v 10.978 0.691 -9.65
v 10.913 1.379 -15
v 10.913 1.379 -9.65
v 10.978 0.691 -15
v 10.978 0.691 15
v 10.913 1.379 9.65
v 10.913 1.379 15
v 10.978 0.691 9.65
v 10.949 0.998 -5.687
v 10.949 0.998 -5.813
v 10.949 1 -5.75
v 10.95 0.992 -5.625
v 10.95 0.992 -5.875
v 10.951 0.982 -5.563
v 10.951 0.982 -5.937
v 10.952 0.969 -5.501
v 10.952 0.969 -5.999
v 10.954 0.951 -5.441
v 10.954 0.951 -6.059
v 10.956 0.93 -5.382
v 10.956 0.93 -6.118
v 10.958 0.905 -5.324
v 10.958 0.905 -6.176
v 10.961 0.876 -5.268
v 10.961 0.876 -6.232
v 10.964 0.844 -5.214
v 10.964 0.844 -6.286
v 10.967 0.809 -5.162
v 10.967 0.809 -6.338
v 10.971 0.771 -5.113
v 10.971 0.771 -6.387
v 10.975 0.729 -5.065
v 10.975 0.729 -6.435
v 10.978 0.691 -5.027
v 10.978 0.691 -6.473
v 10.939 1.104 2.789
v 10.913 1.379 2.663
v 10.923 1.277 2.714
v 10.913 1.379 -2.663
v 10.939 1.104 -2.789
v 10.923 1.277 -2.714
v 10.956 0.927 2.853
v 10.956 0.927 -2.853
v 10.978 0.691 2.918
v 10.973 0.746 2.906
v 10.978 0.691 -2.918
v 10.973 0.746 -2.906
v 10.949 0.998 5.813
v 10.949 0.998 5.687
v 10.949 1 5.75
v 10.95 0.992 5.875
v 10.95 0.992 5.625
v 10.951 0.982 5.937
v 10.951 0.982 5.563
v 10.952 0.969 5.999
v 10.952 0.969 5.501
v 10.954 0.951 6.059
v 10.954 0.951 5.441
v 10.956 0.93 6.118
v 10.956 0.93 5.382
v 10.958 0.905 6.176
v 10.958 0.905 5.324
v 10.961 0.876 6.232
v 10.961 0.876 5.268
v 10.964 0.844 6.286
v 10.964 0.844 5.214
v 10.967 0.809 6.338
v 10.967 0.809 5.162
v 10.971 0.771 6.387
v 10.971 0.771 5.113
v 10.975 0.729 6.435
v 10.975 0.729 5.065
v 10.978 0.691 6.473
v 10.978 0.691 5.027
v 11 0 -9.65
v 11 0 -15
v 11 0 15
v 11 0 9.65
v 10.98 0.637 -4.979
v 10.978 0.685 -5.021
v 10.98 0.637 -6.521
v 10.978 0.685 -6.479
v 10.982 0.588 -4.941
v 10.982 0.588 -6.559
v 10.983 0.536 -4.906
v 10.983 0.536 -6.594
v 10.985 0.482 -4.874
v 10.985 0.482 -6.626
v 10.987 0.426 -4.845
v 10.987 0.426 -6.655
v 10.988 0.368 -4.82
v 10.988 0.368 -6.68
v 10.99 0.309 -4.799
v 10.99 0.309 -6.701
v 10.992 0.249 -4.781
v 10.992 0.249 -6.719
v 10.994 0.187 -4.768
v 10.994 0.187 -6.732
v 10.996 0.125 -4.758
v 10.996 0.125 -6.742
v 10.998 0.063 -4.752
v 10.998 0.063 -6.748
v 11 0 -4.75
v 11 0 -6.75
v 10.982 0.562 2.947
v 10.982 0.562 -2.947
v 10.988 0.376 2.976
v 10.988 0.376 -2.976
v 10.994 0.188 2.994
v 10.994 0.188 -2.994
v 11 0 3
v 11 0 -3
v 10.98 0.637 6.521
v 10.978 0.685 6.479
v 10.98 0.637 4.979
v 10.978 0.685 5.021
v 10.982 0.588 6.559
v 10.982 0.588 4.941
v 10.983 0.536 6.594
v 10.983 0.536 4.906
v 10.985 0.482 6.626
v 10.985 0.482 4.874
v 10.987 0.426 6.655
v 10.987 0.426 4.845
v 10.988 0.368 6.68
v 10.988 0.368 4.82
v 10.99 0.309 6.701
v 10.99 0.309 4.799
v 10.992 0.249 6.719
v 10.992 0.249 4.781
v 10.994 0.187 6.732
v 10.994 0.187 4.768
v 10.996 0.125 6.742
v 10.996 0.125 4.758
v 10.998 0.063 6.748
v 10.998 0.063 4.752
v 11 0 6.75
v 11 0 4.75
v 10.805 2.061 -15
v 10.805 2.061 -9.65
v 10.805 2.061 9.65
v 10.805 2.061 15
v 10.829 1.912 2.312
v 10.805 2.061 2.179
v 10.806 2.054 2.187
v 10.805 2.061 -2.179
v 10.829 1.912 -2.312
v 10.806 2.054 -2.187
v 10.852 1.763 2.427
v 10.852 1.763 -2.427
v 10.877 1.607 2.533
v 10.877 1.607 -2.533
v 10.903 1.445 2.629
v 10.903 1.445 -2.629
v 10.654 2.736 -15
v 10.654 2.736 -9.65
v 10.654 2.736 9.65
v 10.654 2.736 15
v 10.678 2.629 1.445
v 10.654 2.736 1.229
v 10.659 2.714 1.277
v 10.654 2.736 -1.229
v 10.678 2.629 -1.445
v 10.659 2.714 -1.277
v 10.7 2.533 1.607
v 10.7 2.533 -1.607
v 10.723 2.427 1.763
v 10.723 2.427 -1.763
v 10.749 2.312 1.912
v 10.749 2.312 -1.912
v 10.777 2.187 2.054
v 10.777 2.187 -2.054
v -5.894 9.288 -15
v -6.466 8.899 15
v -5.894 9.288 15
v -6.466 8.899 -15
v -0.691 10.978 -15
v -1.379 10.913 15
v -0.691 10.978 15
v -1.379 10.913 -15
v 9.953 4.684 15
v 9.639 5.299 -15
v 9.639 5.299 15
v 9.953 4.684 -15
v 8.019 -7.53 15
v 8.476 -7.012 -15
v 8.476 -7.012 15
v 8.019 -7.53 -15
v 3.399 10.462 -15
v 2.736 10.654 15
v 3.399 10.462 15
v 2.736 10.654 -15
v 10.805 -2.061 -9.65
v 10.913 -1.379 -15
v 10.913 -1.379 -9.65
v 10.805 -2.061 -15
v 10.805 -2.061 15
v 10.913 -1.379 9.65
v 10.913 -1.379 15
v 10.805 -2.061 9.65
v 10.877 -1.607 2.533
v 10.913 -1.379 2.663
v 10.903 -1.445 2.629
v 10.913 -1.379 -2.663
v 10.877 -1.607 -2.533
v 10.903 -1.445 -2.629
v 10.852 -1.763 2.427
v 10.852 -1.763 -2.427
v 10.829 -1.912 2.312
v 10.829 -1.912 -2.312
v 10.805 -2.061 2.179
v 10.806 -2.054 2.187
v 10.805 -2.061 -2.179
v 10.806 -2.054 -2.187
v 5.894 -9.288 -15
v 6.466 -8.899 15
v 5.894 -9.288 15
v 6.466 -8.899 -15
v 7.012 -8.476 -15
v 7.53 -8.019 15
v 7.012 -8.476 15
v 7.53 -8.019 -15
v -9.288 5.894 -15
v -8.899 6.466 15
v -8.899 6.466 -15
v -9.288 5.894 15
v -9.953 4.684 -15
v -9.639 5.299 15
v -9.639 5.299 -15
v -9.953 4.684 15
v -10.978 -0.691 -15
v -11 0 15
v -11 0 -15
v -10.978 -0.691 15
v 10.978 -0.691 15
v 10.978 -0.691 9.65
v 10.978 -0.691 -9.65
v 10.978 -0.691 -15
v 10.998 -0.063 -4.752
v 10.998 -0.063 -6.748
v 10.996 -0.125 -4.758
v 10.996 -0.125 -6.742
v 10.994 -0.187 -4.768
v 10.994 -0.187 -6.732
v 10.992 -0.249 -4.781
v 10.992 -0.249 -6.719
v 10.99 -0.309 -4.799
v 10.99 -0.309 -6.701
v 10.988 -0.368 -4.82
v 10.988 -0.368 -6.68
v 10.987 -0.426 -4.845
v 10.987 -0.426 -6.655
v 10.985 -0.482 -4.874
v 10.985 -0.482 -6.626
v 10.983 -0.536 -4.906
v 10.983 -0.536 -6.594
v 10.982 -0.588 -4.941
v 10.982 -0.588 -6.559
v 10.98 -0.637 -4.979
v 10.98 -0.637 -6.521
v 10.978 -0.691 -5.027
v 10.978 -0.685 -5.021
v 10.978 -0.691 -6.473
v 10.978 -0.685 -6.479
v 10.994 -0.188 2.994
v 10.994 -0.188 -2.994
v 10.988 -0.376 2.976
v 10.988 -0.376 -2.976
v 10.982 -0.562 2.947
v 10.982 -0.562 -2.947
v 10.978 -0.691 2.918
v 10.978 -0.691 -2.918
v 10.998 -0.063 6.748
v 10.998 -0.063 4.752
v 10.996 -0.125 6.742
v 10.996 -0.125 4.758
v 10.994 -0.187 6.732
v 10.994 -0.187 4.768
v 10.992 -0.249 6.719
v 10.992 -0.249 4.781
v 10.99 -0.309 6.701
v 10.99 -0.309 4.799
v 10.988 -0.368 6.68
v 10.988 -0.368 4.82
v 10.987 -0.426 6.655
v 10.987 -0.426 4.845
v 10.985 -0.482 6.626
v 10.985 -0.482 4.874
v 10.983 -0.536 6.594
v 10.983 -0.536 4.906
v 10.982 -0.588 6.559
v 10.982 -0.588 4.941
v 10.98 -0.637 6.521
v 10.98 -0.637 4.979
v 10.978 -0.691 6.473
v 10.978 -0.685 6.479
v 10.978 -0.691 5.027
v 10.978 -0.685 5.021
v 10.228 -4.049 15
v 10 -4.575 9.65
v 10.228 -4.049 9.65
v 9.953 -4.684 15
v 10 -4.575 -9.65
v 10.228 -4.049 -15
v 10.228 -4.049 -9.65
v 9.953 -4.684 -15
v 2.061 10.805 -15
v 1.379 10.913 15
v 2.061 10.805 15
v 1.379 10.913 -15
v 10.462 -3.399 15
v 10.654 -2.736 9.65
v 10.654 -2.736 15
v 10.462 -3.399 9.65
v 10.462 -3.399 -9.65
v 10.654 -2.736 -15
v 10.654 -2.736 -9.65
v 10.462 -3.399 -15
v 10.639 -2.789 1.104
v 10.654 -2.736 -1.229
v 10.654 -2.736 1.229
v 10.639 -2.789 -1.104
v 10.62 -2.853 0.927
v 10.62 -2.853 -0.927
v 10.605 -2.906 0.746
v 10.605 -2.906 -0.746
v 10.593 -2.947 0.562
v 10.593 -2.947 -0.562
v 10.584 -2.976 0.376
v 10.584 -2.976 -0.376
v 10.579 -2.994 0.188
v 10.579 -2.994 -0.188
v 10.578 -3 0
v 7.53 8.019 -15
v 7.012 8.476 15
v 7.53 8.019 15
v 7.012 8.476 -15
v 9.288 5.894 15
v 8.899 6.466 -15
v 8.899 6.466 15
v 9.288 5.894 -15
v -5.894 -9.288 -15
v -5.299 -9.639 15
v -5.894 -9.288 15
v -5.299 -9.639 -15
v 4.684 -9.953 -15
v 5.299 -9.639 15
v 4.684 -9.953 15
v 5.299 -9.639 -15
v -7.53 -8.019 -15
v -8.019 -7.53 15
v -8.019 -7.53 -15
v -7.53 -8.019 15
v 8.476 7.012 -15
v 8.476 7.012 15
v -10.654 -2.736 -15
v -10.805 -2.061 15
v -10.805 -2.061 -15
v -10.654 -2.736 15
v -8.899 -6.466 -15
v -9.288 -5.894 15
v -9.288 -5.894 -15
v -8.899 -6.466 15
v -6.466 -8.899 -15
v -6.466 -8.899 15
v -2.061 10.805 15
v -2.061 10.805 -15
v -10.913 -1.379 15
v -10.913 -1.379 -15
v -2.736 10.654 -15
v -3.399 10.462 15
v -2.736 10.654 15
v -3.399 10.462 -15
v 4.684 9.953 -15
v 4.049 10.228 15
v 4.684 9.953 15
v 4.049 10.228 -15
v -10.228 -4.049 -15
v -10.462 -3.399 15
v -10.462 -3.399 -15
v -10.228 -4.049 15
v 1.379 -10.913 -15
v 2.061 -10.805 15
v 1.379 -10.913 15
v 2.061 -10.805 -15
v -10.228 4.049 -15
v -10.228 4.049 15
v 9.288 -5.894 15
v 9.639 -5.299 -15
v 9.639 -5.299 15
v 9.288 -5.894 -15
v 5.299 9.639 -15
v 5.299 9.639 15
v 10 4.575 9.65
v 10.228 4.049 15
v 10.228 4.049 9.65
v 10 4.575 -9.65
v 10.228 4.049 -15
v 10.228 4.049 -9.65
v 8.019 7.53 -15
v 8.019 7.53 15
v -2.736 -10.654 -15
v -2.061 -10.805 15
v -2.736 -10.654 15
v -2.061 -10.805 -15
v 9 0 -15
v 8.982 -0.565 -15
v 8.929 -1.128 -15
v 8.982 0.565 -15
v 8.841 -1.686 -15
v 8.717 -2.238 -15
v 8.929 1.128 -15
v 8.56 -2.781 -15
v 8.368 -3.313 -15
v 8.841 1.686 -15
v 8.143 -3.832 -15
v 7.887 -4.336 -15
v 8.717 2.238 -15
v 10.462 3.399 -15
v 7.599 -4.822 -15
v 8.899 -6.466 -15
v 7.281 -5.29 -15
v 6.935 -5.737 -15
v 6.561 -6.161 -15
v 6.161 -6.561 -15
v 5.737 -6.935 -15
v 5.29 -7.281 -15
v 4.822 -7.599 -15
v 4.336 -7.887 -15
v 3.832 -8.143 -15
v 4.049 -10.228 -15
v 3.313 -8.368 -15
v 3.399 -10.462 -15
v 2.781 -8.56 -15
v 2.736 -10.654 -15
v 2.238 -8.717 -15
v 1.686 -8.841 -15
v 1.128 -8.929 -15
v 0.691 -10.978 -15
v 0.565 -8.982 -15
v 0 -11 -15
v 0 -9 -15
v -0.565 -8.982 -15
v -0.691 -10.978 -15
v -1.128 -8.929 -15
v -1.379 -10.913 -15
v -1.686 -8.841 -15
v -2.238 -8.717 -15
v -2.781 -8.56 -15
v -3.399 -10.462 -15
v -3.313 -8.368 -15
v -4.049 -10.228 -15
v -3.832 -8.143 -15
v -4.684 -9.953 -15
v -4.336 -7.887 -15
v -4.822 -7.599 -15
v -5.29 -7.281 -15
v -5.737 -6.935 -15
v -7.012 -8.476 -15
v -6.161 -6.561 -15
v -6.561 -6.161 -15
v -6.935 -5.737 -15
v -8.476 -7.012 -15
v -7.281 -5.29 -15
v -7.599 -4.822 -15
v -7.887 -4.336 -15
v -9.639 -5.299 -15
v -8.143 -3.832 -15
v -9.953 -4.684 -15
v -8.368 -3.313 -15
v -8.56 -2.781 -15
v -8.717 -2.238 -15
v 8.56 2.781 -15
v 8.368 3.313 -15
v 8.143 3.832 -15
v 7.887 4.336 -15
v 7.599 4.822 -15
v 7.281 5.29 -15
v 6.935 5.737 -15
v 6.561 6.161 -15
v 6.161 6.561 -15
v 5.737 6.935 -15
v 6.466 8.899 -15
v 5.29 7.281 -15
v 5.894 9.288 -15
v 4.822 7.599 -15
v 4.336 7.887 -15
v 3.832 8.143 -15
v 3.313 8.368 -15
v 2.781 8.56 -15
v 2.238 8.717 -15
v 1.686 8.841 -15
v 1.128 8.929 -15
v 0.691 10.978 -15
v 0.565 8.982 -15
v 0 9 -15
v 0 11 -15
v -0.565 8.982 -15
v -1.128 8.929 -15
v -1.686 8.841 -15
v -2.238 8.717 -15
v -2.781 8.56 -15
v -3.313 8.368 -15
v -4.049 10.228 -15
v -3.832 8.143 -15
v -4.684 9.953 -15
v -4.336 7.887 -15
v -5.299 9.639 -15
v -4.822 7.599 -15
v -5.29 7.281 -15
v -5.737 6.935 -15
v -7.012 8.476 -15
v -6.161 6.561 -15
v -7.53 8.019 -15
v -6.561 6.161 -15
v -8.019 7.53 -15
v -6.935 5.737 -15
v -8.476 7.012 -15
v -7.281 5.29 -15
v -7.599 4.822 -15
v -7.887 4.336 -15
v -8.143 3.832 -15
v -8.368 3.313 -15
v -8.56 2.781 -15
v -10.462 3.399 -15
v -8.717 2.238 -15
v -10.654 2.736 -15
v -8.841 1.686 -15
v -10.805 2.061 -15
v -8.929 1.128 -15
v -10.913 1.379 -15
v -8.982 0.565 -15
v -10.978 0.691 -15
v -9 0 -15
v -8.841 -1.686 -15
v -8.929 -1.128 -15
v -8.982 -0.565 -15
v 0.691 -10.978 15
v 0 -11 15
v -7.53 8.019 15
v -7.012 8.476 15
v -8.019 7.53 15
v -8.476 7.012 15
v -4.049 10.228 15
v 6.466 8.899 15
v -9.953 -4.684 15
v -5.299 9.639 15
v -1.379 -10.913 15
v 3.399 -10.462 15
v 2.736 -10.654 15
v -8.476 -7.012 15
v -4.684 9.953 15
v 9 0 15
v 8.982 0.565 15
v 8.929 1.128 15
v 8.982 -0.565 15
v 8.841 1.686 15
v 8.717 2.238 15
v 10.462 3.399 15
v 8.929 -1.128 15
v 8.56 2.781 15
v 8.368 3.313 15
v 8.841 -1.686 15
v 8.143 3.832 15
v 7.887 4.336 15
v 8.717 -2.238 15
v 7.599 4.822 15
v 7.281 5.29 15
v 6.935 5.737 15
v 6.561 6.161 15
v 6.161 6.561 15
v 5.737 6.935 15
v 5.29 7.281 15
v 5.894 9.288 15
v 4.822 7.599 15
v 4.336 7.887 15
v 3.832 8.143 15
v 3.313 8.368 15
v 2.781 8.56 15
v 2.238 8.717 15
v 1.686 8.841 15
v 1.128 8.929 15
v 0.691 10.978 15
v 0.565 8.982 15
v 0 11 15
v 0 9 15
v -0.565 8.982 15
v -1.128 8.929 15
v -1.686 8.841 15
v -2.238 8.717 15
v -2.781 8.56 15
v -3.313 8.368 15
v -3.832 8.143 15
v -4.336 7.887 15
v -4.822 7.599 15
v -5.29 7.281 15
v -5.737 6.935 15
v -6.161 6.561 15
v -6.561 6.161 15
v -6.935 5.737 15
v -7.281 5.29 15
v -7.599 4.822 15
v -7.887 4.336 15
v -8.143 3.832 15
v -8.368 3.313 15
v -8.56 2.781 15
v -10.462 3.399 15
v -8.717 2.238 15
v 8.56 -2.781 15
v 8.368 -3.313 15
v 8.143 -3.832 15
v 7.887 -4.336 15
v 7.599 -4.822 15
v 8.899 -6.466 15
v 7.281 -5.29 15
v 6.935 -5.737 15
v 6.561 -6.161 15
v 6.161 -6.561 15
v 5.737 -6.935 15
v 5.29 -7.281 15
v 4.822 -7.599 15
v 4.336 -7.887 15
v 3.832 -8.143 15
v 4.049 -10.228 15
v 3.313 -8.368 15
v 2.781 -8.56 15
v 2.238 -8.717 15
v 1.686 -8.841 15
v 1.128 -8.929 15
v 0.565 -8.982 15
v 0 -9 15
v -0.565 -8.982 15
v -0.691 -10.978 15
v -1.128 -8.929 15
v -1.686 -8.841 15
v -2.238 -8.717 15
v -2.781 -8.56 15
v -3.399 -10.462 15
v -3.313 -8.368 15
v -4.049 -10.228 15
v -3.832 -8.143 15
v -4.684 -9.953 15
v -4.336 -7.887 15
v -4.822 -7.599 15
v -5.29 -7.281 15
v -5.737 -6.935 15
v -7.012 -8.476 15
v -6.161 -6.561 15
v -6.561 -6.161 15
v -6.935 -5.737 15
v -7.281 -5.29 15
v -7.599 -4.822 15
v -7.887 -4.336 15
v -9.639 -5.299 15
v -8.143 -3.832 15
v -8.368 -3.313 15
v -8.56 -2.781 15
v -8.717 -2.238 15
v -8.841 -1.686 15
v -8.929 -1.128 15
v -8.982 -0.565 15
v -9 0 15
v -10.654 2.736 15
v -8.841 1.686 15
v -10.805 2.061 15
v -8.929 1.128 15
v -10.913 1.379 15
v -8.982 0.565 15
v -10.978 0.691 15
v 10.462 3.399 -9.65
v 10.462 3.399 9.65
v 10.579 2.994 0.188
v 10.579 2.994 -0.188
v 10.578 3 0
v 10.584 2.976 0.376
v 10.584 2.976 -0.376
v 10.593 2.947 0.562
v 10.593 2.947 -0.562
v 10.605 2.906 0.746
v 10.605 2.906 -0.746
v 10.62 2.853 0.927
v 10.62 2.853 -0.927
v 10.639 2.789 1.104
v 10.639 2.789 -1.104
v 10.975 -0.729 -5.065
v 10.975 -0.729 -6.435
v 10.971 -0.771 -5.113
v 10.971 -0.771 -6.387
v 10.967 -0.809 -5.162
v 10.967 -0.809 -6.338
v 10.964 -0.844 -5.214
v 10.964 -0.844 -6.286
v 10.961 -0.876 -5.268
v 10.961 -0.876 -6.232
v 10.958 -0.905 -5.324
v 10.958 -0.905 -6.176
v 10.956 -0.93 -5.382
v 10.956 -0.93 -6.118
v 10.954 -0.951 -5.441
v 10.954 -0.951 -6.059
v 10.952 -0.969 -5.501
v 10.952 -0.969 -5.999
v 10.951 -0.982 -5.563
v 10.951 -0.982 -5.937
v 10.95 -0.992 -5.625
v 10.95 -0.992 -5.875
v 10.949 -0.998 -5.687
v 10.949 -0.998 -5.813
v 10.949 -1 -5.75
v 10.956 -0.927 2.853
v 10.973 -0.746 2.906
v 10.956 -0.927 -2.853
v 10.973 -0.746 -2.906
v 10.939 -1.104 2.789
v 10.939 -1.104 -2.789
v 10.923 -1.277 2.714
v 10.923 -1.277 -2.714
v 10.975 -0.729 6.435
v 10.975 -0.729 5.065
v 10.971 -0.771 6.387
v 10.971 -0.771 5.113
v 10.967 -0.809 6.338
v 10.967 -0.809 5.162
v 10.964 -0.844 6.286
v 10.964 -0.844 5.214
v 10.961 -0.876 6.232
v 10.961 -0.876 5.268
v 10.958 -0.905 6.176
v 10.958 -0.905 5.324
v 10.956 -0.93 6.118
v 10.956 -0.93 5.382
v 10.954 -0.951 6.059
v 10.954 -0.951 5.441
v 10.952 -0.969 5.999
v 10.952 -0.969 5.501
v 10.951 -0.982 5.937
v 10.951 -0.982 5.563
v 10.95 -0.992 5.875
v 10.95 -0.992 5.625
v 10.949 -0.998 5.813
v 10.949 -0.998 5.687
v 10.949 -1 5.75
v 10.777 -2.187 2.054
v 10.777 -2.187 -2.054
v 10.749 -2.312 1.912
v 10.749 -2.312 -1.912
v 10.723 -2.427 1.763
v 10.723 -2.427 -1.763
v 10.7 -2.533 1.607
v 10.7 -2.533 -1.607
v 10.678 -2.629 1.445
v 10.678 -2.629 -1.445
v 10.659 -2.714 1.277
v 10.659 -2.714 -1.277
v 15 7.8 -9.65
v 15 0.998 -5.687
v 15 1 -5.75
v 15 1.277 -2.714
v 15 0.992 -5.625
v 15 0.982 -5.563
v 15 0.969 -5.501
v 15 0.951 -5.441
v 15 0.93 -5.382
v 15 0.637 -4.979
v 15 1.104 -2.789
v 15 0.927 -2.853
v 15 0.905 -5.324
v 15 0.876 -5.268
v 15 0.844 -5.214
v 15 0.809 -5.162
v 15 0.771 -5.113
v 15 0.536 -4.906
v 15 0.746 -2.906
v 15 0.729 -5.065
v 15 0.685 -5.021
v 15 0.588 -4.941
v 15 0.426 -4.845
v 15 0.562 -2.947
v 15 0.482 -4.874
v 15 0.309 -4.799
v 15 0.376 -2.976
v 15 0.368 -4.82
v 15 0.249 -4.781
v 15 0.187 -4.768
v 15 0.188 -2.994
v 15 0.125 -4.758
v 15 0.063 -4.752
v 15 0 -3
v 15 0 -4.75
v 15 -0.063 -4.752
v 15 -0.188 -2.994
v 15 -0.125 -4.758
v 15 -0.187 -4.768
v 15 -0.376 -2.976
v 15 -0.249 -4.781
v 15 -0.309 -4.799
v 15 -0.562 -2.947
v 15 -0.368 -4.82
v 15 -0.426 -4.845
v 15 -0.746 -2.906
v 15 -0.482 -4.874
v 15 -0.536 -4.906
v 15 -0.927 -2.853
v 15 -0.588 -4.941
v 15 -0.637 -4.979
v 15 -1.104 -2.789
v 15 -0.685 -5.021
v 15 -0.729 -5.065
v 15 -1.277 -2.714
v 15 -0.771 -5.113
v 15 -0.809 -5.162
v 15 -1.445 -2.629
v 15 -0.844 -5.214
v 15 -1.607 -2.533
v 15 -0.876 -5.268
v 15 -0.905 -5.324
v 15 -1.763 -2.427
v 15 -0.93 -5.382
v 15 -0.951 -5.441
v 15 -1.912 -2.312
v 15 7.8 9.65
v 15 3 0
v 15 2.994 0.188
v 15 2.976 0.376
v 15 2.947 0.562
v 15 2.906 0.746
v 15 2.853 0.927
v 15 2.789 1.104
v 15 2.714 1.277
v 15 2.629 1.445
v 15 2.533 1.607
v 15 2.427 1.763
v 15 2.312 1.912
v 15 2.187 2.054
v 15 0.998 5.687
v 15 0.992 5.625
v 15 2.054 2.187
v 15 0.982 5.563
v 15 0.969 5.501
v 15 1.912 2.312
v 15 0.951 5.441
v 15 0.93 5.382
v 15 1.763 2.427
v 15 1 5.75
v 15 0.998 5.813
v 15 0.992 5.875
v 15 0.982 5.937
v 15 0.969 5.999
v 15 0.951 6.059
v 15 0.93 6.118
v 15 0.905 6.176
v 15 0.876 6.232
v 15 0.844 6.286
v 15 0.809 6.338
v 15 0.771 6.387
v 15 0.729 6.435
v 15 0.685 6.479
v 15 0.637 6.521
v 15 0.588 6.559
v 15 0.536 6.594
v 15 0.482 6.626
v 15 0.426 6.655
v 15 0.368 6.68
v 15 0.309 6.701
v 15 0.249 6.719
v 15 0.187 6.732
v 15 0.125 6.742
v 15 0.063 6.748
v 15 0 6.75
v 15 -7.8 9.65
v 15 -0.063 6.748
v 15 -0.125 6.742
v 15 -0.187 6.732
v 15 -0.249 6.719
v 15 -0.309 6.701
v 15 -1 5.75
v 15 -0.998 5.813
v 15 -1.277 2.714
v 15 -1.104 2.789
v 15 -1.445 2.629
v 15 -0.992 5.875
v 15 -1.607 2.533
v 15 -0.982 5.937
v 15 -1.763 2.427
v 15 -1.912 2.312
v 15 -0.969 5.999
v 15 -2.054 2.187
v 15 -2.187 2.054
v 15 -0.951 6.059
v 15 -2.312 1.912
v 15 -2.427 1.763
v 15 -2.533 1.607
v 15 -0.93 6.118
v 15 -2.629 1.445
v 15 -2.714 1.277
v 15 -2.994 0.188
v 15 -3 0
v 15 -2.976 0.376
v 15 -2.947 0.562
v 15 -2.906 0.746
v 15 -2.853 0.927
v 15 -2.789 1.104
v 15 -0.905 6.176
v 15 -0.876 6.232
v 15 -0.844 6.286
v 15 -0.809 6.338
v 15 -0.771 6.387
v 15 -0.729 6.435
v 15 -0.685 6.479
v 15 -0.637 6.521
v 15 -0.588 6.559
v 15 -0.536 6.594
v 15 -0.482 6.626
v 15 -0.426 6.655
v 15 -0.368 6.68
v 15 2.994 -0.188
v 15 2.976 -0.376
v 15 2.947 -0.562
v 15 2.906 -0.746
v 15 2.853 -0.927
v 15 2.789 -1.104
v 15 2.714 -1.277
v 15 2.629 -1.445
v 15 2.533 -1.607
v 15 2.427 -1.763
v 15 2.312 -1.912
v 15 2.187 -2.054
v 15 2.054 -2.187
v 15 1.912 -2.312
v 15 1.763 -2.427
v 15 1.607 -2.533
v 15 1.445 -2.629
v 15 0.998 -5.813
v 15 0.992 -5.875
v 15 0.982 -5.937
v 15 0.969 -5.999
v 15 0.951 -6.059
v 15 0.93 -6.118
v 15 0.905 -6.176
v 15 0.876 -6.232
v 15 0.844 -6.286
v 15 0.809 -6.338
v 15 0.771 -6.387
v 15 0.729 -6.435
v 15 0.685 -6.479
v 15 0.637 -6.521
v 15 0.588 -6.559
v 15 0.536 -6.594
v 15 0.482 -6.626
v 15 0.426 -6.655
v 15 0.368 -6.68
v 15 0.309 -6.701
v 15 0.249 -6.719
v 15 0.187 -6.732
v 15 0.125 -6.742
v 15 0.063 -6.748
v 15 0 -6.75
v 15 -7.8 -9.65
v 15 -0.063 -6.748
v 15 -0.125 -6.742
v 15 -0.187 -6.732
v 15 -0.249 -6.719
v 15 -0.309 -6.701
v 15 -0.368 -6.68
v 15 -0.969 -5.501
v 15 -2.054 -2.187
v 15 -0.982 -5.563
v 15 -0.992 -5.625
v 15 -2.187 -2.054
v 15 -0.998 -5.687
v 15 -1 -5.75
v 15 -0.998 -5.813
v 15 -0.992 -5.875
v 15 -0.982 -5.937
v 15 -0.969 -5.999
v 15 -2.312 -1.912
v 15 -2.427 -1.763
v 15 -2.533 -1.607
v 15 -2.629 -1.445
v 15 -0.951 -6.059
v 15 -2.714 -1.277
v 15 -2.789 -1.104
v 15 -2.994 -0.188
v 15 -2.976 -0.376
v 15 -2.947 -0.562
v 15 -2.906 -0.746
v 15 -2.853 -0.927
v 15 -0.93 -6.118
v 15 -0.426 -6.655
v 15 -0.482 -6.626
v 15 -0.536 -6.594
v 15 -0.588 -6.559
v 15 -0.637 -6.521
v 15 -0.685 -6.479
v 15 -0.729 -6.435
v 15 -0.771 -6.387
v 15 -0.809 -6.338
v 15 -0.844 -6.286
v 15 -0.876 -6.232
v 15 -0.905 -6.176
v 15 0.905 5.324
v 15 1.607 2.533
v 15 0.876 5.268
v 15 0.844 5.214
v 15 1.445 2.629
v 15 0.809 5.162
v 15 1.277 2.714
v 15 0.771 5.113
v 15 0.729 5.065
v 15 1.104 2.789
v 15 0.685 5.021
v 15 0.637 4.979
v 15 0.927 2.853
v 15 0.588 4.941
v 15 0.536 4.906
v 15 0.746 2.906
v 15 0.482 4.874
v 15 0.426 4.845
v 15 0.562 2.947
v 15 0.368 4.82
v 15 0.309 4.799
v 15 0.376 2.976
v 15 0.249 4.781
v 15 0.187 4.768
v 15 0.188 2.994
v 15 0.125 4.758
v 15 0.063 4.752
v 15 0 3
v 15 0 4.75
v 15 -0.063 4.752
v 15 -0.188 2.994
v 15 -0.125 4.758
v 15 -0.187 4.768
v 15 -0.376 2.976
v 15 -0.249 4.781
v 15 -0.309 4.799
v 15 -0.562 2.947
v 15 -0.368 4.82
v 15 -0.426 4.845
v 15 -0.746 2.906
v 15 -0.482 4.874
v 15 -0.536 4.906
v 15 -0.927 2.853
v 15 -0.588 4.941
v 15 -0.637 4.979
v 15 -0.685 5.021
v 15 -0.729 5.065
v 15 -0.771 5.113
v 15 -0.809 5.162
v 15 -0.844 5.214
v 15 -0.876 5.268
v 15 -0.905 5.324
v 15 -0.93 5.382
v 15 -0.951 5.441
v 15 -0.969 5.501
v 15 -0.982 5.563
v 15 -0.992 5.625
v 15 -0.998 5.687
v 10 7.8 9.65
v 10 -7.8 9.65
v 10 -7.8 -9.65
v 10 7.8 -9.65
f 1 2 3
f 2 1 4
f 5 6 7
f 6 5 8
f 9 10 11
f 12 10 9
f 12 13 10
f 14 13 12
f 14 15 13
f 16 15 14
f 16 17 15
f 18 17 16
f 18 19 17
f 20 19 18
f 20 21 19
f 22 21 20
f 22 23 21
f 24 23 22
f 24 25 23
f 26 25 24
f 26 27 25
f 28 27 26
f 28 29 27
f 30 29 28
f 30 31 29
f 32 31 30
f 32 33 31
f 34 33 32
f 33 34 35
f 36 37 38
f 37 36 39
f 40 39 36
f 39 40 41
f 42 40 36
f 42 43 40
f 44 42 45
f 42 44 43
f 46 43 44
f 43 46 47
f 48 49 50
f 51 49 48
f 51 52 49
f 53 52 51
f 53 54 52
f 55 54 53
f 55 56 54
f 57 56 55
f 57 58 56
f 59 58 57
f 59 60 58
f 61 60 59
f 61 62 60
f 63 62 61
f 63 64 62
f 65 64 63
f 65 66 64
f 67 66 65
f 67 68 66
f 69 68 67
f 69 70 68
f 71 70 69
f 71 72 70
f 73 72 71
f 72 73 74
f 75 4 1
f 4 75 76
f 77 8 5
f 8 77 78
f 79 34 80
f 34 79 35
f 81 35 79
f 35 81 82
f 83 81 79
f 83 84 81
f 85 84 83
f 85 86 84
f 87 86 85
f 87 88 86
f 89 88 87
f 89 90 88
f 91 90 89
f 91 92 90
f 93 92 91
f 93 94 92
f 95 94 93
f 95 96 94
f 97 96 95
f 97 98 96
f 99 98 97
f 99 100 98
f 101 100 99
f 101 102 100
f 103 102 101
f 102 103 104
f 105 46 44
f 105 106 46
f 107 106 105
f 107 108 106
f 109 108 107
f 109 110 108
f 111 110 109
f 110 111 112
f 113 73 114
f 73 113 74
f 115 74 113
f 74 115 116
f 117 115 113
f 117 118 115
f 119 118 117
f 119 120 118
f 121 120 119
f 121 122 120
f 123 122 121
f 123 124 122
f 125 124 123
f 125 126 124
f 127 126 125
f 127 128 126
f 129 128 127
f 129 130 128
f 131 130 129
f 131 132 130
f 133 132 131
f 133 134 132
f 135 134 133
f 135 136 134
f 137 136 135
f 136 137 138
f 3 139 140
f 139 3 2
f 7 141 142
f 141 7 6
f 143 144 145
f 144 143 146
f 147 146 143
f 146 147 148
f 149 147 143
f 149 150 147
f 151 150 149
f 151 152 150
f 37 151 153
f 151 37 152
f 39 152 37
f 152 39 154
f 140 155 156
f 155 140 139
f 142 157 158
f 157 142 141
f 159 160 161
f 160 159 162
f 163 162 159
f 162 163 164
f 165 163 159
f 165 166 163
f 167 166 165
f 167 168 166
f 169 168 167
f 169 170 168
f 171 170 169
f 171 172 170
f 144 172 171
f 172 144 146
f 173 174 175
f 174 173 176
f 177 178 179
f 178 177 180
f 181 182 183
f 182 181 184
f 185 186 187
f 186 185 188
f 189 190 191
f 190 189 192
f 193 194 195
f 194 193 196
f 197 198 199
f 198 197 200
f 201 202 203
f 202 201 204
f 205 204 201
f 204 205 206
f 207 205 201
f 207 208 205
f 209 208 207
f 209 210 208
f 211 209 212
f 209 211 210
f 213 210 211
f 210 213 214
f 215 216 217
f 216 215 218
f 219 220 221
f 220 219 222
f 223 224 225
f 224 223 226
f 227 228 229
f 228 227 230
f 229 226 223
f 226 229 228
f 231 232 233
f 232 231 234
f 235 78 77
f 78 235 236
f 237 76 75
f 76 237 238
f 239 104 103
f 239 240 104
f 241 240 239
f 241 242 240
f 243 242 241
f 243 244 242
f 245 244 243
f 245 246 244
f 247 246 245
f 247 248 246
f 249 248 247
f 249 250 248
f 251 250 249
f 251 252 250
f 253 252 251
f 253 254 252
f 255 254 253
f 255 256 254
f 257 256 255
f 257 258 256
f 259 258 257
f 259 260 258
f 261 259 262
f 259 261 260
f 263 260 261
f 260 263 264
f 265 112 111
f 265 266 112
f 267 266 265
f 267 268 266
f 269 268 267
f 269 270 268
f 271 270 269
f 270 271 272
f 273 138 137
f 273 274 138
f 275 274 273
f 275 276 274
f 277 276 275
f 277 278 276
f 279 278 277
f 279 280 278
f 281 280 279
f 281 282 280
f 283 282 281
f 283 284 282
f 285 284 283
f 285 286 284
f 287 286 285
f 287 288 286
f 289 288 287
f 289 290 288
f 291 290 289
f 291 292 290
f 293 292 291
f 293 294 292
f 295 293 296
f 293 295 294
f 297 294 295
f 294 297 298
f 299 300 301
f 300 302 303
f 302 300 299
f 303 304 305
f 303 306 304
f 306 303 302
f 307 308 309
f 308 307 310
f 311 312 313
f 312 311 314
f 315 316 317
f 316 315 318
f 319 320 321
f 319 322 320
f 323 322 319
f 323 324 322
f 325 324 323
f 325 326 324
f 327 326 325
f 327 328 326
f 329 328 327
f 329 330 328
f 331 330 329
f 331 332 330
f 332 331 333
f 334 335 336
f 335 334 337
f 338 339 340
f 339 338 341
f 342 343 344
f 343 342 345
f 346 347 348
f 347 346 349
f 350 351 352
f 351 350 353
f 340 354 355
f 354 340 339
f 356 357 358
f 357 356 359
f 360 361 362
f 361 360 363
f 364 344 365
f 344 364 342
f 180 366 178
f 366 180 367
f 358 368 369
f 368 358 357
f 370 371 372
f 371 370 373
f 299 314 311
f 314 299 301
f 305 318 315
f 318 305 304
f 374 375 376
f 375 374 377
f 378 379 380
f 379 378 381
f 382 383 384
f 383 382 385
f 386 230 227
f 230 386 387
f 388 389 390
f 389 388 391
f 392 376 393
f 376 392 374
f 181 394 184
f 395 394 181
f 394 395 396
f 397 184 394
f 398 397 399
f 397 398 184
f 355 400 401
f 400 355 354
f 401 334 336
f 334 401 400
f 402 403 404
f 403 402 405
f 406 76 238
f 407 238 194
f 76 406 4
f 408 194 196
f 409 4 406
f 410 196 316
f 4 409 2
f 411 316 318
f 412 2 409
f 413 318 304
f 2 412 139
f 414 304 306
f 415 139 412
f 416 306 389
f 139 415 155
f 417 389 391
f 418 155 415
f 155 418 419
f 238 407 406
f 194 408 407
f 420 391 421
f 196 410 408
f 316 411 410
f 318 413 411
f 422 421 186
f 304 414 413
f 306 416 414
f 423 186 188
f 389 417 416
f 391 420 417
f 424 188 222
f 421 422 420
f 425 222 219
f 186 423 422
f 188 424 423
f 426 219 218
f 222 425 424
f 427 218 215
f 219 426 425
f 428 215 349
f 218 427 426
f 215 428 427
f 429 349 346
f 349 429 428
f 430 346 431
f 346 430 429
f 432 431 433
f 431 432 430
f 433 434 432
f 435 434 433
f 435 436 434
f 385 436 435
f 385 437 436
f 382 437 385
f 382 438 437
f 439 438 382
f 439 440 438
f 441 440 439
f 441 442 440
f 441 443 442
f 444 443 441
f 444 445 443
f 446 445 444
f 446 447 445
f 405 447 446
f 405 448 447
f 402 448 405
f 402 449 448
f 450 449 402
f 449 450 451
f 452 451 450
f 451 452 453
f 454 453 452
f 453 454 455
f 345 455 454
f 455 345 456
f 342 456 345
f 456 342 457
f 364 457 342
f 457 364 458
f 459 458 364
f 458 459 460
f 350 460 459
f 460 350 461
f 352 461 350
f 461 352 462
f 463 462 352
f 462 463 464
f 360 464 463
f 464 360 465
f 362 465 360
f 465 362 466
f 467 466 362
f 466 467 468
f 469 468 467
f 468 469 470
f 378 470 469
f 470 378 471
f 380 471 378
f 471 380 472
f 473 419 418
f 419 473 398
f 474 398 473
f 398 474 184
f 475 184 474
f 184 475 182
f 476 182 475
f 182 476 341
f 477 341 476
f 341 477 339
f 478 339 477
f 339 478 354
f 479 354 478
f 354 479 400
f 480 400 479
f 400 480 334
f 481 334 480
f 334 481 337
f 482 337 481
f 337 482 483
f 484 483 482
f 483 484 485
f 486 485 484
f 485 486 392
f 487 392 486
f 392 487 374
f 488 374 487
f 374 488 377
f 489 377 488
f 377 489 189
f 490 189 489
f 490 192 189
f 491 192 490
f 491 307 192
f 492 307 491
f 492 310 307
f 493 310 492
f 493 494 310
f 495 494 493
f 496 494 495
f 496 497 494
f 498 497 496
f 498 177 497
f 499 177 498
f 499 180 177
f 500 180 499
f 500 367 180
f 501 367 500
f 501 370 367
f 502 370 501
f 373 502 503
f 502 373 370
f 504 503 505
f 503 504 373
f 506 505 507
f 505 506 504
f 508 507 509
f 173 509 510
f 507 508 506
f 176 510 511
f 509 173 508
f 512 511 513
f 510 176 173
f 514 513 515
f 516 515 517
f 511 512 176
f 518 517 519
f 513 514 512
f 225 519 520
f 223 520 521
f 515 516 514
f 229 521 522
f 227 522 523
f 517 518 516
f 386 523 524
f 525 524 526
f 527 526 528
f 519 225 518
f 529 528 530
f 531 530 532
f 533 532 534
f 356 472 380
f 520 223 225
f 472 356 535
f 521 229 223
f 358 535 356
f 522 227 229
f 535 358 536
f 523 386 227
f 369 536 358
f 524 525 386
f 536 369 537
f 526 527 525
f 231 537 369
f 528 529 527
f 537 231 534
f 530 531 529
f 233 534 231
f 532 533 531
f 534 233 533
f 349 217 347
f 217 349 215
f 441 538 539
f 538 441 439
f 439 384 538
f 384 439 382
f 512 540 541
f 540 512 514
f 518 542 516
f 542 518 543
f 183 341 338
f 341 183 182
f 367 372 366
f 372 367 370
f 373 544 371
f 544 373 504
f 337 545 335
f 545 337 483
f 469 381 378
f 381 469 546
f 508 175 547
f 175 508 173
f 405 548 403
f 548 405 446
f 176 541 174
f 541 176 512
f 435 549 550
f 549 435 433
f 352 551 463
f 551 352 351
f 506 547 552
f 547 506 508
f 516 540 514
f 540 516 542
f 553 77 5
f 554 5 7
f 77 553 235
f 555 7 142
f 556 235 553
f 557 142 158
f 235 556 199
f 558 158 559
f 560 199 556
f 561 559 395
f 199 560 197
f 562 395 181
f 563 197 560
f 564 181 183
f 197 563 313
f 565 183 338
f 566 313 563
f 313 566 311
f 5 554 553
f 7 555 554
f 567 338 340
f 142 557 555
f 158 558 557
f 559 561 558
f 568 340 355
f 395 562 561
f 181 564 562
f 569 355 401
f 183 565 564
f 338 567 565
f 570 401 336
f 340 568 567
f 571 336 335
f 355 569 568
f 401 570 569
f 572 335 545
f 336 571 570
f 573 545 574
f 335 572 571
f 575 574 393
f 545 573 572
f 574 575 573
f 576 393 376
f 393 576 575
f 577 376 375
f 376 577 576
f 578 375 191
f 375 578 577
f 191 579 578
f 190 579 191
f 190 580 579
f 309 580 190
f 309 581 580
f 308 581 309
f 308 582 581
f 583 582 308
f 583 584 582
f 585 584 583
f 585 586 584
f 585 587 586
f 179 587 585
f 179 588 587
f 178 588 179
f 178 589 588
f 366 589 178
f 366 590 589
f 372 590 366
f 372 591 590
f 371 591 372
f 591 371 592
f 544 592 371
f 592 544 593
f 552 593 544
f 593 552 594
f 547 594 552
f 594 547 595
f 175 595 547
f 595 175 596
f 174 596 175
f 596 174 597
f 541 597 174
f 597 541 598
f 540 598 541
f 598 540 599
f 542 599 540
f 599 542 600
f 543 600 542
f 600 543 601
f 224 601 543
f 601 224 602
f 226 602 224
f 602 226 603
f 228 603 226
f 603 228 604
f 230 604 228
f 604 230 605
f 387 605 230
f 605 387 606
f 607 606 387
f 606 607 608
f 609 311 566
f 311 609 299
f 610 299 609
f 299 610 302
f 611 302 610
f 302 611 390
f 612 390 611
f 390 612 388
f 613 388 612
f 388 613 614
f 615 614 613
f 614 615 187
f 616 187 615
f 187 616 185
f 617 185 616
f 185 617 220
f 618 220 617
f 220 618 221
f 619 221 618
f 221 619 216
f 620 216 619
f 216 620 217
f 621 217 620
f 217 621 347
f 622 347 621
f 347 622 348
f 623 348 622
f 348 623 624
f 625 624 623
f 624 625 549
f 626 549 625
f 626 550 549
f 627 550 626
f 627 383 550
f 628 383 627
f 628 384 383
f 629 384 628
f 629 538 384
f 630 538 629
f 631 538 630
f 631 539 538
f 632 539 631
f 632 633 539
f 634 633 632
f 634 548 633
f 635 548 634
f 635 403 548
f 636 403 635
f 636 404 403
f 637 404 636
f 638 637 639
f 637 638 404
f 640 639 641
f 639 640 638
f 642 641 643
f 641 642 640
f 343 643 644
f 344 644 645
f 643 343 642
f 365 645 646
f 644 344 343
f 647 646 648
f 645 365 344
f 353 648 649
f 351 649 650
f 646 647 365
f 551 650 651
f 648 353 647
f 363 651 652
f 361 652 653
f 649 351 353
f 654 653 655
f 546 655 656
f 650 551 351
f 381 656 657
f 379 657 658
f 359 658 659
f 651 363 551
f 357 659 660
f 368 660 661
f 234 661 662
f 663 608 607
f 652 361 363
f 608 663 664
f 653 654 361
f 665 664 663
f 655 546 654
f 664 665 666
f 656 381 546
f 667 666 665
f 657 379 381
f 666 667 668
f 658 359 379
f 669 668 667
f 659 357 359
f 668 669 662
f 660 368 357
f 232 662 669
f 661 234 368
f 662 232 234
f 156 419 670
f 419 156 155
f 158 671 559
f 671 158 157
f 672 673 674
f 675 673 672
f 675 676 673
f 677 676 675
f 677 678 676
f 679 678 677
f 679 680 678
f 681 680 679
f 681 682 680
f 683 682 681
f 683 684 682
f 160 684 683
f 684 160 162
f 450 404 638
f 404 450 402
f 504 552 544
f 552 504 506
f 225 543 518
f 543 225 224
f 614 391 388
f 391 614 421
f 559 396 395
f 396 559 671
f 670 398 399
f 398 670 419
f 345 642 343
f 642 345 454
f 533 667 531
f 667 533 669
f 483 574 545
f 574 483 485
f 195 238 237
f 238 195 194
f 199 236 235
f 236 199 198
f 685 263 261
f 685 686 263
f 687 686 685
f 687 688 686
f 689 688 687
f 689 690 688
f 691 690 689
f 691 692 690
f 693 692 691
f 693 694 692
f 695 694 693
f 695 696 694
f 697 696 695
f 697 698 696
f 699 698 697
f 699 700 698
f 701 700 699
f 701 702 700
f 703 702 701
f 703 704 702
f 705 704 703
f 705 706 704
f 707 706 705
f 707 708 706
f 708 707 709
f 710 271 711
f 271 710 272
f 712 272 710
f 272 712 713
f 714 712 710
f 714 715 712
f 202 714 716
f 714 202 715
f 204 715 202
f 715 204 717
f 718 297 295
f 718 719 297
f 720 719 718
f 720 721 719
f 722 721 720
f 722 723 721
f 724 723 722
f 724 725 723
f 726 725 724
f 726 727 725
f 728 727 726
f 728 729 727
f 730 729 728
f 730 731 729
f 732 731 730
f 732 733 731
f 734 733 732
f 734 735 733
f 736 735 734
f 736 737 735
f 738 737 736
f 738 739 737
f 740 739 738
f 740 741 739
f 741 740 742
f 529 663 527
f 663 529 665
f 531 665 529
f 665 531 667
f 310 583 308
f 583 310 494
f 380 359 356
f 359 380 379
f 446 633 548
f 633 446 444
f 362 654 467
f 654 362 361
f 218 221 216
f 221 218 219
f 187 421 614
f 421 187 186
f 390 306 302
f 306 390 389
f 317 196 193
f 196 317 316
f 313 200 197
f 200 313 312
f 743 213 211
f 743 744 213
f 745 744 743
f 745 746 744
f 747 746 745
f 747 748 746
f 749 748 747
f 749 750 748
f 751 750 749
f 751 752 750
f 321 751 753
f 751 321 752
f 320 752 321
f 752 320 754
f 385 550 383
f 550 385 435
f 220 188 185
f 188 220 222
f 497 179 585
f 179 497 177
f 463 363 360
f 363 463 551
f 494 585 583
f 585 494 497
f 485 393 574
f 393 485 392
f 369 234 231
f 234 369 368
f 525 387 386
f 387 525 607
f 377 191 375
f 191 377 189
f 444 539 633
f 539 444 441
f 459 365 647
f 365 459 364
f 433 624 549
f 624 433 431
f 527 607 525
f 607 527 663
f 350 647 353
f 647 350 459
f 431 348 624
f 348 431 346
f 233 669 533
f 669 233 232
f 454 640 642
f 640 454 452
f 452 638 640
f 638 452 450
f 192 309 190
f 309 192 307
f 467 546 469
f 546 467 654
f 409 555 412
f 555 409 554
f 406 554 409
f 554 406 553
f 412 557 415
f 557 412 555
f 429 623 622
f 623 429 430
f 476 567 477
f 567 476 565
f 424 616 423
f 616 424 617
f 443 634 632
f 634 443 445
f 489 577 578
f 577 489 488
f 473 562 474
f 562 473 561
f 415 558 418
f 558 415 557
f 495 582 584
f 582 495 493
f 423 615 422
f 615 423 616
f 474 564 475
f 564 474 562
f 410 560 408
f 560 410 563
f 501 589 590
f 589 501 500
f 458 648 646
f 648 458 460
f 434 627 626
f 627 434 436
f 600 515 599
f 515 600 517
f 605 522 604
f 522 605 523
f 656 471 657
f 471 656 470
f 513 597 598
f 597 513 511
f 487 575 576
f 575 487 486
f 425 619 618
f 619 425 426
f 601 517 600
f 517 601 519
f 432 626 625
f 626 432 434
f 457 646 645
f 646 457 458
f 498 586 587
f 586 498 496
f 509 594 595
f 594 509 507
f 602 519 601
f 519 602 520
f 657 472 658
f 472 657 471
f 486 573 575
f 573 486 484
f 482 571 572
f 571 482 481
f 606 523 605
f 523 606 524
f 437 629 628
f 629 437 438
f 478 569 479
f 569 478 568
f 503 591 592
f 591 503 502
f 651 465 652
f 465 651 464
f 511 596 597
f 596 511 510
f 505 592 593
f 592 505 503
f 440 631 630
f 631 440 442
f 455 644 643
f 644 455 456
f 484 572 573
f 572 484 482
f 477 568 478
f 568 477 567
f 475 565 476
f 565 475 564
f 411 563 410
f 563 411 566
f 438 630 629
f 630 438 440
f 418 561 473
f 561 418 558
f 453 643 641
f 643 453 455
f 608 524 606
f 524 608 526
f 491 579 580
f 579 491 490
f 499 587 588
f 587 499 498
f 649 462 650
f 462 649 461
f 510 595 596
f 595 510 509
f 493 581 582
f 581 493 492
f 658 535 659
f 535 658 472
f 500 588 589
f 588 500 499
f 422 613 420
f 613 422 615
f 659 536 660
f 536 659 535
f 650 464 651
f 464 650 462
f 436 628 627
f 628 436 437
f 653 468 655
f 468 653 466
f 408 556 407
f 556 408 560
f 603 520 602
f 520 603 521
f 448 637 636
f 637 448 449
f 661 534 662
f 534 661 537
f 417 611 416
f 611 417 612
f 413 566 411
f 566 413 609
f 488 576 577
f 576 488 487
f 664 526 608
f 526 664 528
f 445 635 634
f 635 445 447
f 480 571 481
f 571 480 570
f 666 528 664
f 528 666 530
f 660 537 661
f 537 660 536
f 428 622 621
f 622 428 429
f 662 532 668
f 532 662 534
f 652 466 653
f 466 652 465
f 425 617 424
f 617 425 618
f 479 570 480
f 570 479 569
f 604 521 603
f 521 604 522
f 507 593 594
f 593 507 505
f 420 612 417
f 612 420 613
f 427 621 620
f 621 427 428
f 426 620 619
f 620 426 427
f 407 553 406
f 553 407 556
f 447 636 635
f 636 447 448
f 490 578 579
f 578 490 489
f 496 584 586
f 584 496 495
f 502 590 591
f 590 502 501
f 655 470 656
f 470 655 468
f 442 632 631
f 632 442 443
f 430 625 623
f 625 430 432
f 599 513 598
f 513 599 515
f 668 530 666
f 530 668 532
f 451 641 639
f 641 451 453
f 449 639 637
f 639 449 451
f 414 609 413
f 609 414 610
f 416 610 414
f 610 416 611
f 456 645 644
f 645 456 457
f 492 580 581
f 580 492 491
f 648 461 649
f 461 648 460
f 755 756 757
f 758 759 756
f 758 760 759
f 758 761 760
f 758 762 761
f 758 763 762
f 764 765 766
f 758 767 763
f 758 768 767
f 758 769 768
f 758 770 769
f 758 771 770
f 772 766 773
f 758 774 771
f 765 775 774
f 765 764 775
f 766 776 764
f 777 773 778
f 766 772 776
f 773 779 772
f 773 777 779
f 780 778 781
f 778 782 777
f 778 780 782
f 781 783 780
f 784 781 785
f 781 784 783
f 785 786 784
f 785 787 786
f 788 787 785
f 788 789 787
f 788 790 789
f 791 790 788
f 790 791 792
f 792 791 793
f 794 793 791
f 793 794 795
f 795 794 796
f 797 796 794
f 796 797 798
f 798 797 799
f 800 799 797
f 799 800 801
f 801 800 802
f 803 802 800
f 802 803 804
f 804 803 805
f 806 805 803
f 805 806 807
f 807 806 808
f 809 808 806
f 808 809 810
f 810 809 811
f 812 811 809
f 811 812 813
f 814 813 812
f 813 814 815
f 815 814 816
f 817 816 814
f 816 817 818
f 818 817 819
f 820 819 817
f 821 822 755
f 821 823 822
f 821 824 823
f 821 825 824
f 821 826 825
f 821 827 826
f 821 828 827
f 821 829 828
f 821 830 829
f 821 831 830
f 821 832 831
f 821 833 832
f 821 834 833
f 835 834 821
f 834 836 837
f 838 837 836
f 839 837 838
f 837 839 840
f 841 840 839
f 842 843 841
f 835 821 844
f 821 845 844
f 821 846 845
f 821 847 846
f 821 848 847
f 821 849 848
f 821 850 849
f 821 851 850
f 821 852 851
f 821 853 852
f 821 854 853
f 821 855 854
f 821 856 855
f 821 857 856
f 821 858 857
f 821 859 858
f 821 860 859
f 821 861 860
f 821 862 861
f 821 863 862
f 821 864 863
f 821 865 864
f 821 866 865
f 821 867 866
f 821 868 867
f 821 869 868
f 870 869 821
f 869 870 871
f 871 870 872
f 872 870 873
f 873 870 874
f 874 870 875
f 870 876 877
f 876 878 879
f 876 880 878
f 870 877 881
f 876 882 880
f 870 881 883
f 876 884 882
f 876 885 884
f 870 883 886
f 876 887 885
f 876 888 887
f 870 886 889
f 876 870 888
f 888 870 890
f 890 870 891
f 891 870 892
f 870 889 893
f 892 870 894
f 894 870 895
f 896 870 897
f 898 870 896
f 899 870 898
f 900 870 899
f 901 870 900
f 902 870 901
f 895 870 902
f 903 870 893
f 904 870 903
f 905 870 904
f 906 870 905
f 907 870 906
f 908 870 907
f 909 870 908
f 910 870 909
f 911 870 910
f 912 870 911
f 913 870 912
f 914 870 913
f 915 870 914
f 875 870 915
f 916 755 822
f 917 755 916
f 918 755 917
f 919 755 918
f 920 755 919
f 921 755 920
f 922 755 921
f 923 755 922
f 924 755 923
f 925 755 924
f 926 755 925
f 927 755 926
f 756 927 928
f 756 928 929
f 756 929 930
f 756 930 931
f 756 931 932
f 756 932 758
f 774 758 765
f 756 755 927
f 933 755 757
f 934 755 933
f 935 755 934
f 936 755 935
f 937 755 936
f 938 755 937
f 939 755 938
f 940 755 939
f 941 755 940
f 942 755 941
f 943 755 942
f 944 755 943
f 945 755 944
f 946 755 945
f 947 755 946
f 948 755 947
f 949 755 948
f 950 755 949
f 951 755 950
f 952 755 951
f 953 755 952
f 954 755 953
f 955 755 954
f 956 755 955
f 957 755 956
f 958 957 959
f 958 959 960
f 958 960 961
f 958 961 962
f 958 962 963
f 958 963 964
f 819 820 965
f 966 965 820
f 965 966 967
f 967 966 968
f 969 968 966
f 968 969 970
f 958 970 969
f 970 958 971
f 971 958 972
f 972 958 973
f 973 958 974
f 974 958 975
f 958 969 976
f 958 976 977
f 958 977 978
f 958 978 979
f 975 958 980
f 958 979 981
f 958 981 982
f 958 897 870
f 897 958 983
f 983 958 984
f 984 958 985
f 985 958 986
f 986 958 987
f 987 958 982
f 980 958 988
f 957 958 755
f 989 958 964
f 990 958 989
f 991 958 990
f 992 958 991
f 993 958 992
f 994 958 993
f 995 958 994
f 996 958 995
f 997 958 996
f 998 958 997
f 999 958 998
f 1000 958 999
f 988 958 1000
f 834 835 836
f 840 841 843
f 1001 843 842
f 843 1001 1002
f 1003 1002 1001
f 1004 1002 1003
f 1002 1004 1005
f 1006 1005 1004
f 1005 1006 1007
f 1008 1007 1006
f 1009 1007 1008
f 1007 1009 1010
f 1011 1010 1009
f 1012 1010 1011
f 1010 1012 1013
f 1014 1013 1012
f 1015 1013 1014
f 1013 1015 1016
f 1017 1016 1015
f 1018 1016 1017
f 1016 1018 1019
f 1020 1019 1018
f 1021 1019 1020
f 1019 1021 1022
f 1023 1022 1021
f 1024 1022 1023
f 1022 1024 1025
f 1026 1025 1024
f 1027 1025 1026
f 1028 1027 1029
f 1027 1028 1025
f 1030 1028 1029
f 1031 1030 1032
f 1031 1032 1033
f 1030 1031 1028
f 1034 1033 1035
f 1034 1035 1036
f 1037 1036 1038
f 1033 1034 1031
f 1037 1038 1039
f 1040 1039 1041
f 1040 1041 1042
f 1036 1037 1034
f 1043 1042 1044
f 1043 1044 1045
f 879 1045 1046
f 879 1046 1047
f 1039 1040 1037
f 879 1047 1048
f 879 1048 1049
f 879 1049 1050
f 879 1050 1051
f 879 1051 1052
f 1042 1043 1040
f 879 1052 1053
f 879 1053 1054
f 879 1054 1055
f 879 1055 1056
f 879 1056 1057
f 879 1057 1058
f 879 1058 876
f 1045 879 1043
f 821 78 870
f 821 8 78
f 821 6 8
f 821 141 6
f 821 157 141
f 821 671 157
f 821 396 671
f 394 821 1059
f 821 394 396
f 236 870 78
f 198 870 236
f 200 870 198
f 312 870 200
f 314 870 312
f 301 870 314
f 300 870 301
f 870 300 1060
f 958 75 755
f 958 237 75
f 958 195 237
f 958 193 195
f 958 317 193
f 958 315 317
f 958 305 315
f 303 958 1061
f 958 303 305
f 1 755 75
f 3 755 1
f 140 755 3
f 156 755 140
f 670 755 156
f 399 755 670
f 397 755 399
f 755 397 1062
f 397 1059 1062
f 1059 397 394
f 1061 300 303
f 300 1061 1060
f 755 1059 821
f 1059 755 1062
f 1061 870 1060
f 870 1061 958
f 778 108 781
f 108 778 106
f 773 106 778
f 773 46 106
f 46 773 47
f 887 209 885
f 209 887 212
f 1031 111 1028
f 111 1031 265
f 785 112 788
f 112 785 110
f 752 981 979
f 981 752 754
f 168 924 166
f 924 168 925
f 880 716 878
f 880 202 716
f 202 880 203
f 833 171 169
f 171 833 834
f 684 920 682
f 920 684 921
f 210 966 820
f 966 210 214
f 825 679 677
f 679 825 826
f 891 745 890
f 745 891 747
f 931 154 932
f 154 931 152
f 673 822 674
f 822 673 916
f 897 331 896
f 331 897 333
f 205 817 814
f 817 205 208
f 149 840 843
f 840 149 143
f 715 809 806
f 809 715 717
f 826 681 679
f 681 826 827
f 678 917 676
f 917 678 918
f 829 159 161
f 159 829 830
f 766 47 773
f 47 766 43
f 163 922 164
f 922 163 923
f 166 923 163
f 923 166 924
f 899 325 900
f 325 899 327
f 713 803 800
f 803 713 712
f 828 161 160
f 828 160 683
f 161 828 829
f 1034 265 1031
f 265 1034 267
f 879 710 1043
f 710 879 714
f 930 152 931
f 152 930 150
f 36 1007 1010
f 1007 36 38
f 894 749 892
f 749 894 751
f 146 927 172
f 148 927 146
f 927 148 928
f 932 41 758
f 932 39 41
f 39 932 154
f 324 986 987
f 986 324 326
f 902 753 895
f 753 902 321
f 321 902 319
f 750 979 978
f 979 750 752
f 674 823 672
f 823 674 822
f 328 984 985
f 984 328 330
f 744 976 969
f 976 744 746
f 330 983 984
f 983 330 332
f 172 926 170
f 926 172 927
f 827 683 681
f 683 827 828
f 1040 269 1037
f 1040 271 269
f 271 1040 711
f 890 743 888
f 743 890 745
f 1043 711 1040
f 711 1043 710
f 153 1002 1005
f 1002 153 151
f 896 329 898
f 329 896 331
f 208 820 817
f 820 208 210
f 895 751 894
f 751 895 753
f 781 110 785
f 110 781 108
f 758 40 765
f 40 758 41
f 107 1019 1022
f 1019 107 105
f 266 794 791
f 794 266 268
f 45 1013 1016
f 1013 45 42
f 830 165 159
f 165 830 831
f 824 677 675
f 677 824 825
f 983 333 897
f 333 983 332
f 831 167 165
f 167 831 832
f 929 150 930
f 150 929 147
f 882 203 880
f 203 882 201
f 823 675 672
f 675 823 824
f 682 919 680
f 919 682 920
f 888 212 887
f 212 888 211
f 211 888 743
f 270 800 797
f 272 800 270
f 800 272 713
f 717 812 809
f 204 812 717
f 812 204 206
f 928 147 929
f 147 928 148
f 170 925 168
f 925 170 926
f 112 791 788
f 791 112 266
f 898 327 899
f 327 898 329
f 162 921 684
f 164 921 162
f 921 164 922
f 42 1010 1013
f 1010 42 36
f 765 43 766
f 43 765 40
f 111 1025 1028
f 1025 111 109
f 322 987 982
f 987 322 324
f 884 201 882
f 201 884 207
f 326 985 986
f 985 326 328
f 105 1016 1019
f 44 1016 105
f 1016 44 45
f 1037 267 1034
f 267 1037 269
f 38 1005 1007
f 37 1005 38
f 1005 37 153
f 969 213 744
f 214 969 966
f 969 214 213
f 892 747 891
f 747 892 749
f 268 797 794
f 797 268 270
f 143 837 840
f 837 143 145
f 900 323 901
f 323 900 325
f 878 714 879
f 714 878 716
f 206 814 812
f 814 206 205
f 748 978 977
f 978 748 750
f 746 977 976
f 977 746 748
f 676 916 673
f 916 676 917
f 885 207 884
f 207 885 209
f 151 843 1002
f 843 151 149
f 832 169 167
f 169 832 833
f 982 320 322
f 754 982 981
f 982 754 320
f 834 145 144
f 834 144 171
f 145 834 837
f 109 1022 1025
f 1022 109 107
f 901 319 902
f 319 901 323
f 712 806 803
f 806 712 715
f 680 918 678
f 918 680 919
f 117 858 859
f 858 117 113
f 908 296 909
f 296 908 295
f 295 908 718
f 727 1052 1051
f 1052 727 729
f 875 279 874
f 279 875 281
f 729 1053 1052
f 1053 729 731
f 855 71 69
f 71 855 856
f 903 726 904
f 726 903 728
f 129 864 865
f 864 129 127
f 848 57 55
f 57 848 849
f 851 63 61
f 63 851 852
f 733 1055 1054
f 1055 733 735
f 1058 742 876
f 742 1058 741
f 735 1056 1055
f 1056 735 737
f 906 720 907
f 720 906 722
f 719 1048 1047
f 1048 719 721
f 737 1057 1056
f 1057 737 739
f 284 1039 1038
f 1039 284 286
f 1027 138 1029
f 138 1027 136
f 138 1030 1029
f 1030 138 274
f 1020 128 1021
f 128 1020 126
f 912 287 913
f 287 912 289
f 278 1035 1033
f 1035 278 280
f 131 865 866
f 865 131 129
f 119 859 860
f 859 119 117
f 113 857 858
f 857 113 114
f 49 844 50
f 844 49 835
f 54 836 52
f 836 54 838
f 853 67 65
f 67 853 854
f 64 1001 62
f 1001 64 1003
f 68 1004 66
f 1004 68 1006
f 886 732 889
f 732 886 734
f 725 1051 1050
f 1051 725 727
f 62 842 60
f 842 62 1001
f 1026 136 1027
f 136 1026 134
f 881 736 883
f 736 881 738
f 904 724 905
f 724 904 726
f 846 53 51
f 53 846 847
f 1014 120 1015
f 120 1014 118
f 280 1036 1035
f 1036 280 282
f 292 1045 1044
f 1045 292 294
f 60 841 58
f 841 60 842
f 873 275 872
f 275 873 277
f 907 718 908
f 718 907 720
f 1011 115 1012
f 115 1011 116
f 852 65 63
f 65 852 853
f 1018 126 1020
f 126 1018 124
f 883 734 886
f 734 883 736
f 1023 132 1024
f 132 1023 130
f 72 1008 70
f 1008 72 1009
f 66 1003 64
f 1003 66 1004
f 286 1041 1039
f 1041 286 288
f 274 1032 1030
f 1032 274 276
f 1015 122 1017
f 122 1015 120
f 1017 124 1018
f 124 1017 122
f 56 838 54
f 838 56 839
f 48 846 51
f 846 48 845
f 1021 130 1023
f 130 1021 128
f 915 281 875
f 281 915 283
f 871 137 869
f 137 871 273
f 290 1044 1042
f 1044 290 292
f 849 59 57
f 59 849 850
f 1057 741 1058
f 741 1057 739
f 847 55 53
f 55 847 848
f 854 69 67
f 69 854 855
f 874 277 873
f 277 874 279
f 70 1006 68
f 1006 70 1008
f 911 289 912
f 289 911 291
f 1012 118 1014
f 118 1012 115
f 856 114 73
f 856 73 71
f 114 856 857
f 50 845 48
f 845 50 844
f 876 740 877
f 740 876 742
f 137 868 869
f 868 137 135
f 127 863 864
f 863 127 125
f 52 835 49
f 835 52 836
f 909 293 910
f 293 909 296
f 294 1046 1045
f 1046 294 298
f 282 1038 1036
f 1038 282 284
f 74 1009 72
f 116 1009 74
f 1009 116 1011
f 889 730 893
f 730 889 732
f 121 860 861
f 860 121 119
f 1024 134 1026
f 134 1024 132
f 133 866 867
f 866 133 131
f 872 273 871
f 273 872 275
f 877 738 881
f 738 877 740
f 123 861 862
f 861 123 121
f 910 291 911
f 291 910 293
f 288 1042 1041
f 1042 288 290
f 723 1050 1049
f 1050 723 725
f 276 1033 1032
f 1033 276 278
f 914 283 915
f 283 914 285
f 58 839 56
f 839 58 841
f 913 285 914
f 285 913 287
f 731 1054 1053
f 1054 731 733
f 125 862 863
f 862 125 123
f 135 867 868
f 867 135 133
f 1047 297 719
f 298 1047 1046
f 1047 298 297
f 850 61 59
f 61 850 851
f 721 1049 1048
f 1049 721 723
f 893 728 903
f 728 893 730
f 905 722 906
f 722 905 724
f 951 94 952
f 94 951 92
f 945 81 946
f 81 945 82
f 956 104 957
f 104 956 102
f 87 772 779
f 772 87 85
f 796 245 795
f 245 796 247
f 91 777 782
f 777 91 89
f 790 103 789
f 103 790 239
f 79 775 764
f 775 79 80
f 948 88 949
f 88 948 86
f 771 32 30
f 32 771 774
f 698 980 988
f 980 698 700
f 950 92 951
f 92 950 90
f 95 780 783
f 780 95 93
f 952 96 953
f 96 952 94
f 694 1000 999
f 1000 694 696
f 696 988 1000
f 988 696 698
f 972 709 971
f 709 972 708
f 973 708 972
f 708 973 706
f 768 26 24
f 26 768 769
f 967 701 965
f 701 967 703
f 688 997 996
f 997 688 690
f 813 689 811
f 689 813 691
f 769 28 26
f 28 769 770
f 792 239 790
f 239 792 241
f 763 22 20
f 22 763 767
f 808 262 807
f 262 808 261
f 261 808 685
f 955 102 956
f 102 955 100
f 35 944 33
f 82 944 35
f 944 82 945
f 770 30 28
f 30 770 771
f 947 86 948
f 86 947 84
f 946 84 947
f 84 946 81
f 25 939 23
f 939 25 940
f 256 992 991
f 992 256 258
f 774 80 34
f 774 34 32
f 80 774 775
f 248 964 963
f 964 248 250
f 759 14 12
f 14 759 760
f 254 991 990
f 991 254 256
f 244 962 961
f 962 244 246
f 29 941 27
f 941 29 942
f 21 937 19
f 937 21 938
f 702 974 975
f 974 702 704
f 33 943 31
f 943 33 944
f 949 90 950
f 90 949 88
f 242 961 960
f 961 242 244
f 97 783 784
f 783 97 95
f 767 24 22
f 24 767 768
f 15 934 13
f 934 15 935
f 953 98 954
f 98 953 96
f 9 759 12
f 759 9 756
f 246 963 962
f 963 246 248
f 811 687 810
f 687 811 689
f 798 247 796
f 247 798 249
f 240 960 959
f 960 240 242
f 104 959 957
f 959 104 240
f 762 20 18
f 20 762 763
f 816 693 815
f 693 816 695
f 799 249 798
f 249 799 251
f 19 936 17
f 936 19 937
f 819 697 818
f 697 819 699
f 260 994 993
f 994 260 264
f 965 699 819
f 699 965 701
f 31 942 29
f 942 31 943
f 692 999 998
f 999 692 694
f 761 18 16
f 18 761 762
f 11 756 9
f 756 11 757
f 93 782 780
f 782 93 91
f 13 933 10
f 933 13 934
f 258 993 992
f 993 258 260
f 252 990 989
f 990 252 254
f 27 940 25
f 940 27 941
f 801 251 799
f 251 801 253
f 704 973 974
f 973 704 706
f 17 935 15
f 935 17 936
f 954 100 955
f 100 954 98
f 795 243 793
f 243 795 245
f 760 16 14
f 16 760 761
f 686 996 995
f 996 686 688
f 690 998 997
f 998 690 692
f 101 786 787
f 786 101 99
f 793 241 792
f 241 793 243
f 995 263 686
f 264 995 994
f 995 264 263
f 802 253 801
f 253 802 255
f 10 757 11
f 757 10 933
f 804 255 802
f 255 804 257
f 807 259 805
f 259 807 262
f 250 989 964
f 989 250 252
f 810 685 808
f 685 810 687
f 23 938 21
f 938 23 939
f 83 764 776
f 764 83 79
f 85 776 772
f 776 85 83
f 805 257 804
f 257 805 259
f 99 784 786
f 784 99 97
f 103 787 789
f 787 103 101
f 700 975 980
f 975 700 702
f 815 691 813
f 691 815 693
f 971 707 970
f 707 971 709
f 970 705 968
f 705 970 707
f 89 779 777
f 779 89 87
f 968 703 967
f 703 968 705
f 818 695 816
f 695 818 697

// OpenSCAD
/*
 * Inline adapter for Temp/Humidity/Pressure sensor.
 * Fits between the face mask and the hose.
 * Designed for a standard BME280 breakout (11.6mm x 15.3mm).
 */

// Basic parameters
inner_dia = 18;     // Inner diameter of the tube
outer_dia = 22;     // Outer diameter of the tube (standard medical 22mm ISO)
tube_length = 30;   // Overall length of the insert
wall_thickness = (outer_dia - inner_dia) / 2;

// Sensor mount parameters
sensor_length = 15.3;
sensor_width = 11.6;
sensor_boss_height = 3;
sensor_screw_dist = 11.5; // distance between mounting holes
screw_hole_dia = 2; // diameter for M2 screws

$fn = 100;

module adapter_tube() {
    difference() {
        cylinder(h=tube_length, d=outer_dia, center=true);
        cylinder(h=tube_length + 2, d=inner_dia, center=true);
    }
}

module sensor_boss() {
    // A flat surface on the outside of the tube to mount the sensor
    boss_width = sensor_width + 4;
    boss_length = sensor_length + 4;
    boss_thickness = sensor_boss_height + wall_thickness;

    translate([0, 0, 0])
    difference() {
        // Boss body
        translate([outer_dia/2 - wall_thickness/2, -boss_width/2, -boss_length/2])
            cube([boss_thickness, boss_width, boss_length]);

        // Inner bore cutout (to clear the inner tube diameter)
        cylinder(h=tube_length + 2, d=inner_dia, center=true);

        // Sensor opening to allow air sensing
        translate([outer_dia/2 - 1, 0, 0])
            rotate([0, 90, 0])
            cylinder(h=10, d=6, center=true);

        // Mounting screw holes
        translate([outer_dia/2 + boss_thickness - 2, 0, sensor_screw_dist/2])
            rotate([0, 90, 0])
            cylinder(h=10, d=screw_hole_dia, center=true);

        translate([outer_dia/2 + boss_thickness - 2, 0, -sensor_screw_dist/2])
            rotate([0, 90, 0])
            cylinder(h=10, d=screw_hole_dia, center=true);
    }
}

module main() {
    union() {
        adapter_tube();
        sensor_boss();
    }
}

main();
